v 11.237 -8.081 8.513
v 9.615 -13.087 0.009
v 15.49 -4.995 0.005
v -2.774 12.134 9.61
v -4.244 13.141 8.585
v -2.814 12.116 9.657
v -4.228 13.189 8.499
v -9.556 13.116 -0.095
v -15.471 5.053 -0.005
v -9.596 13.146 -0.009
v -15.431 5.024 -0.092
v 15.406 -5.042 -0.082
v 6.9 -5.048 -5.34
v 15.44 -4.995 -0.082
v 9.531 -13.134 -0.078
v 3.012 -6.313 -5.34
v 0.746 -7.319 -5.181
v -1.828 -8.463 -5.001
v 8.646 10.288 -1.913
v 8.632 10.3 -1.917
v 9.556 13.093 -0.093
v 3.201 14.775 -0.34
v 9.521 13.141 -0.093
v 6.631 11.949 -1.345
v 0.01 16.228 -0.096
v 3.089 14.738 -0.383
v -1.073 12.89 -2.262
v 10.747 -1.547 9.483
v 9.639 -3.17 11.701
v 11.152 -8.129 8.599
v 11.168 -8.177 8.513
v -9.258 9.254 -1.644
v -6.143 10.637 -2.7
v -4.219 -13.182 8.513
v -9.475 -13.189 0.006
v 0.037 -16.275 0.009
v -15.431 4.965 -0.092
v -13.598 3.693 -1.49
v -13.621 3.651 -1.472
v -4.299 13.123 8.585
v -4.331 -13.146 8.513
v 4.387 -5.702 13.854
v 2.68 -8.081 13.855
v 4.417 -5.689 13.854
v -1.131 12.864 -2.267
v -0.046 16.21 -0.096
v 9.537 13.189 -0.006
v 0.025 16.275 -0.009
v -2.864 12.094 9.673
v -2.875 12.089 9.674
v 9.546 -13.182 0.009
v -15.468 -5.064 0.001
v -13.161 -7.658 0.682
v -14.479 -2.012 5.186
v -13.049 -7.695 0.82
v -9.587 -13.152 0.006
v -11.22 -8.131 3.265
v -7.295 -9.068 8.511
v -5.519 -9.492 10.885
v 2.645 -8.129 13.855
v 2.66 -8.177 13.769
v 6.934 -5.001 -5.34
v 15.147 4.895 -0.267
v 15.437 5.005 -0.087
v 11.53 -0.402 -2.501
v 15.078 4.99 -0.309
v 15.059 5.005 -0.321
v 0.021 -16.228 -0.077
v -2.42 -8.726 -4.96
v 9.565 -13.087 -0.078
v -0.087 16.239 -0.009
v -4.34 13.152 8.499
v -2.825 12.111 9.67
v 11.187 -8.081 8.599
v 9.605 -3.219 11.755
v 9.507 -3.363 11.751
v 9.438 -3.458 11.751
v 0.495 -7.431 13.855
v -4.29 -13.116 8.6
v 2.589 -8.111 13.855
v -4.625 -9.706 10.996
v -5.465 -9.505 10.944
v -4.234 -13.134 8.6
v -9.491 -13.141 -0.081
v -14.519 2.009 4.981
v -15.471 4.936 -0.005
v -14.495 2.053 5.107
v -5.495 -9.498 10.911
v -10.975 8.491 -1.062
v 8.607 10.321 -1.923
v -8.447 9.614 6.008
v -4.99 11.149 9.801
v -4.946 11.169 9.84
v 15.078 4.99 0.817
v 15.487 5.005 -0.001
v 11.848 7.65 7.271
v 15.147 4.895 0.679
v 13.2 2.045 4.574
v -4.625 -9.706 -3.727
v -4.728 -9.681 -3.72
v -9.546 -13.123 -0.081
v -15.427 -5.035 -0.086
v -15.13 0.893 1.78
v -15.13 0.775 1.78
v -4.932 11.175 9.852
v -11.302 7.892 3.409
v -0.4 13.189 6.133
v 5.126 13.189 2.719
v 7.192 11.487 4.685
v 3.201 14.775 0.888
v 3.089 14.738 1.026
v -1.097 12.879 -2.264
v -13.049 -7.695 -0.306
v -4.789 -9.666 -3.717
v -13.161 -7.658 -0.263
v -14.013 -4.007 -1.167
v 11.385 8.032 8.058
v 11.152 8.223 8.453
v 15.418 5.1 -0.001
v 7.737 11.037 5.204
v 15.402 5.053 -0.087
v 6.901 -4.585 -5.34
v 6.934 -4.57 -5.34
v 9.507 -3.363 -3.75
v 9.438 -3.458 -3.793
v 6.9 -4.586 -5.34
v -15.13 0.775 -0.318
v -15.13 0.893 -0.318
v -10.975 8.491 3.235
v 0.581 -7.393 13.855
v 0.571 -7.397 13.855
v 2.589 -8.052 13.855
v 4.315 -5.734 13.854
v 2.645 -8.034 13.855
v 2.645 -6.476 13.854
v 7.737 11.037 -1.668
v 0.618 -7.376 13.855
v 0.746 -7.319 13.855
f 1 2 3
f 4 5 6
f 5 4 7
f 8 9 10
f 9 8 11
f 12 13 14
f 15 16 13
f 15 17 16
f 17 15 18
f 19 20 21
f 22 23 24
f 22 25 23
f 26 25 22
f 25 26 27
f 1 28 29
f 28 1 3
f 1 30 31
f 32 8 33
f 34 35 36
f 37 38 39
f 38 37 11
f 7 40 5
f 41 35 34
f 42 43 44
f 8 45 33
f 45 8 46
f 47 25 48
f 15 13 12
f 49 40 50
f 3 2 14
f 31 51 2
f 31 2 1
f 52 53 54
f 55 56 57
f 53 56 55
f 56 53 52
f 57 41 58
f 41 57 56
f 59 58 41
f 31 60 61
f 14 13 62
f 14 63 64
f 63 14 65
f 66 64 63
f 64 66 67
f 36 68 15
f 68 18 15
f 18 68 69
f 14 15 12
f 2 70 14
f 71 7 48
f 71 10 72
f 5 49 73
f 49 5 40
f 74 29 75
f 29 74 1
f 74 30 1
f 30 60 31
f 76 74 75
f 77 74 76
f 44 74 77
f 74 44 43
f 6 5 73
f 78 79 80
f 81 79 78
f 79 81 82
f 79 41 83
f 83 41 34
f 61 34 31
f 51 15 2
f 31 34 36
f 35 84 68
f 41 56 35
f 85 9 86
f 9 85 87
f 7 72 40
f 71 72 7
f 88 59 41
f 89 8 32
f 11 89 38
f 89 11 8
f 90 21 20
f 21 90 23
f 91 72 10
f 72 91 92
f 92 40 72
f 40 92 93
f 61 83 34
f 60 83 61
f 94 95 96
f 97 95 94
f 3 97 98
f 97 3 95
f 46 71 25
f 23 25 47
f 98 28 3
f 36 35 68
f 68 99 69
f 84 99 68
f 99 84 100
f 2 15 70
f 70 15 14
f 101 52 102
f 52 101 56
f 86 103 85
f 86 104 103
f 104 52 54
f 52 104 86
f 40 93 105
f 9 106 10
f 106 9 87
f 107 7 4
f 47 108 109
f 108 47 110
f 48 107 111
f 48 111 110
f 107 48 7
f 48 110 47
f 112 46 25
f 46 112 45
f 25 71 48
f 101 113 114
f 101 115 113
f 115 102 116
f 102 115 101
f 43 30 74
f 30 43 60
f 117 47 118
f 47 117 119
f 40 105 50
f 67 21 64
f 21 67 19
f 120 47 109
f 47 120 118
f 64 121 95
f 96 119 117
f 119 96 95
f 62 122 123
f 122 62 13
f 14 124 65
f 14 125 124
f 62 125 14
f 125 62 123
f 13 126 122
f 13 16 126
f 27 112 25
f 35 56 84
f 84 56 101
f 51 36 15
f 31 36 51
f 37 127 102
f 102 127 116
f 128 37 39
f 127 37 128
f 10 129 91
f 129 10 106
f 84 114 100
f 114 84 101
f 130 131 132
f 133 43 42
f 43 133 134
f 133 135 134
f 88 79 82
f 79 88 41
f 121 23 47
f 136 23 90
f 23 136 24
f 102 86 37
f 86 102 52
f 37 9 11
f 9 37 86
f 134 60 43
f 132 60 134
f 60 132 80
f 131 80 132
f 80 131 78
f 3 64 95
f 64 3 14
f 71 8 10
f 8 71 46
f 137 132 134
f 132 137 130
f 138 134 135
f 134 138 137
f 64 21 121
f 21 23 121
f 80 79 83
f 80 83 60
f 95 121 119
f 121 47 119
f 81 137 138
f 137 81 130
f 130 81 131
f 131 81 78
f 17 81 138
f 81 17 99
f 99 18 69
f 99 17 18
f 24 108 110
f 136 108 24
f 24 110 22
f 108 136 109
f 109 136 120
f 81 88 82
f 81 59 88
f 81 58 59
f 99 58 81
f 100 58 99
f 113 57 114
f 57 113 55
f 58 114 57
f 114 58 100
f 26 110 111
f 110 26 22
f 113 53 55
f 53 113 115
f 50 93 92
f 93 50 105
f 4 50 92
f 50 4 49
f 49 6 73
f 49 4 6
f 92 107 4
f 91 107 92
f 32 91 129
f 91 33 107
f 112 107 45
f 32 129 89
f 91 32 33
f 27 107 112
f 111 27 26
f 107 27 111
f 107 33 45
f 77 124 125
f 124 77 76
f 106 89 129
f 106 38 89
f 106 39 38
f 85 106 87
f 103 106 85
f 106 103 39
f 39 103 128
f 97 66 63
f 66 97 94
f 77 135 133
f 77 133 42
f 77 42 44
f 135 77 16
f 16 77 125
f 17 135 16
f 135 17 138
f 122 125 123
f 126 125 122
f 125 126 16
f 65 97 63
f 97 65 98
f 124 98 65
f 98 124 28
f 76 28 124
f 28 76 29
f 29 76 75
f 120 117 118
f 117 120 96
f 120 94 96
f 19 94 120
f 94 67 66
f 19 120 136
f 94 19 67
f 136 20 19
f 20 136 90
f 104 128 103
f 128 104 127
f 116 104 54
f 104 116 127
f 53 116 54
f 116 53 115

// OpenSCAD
// Auto-generated OpenSCAD file

    inner_points = 10*[[1.504661527029664, 0.48947506274315233, -0.4999999999999145], [-1.3079948667278423, -0.7599647980164363, 0.4999999999999145], [-0.6357029077328671, 0.46948589779540517, -1.3090169943752812], [-0.22020362671136517, 1.2293282153003366, 0.8090169943744602], [0.7706252891456874, 1.09420582817551, -0.8090169943751957], [-1.5048615327414891, 0.08338774737153498, -3.865796571744795e-13], [0.9674919551595329, 0.2508532827872281, -1.3090169943748946], [-1.3079948667276438, -0.759964798016747, -0.5000000000000855], [1.5046615270294654, 0.489475062743463, 0.5000000000000855], [-0.7708252948577115, -0.5213430180605121, 1.3090169943748946], [-0.2202036267110432, 1.2293282152998337, -0.8090169943754346], [-1.0893622517194665, 0.8432300648756529, -0.5000000000005401], [0.09833333015123245, -0.13524486763714477, -1.618033988749895], [-0.7708252948571909, -0.5213430180613257, -1.3090169943750003], [0.9674919551590123, 0.2508532827880416, 1.3090169943750003], [0.098333330150589, -0.13524486763613924, 1.618033988749895], [0.3169659451590877, 1.467949995255758, -4.5458081743277035e-13], [-1.0893622517196655, 0.8432300648759636, 0.4999999999994599], [0.7706252891453657, 1.094205828176013, 0.8090169943746992], [-0.6357029077333877, 0.46948589779621863, 1.3090169943746135], [0.07153360287893762, -0.7224188430740421, -0.8090169943747703], [0.9406922278870392, -0.3363206926493587, 0.5000000000002299], [0.07153360287861593, -0.7224188430735395, 0.8090169943751245], [0.940692227887238, -0.3363206926496693, -0.4999999999997701], [-0.46563596899151527, -0.9610406230294636, 1.444677710793485e-13]];

    outer_points = 10*[[-0.000564910313048521, 1.6180336318009756, -0.0009143233444000093], [0.000564910313048521, -1.6180336318009756, 0.0009143233444000093], [-1.376498108047588, 0.0, 0.8504627841894703], [0.8504625965717973, 0.0010747608291631194, 1.3764978043830696], [-0.4258986806464176, 1.3093488249583056, 0.8498529032449322], [-0.42498463655930974, -1.3086845862361058, 0.8513323094928791], [-0.9515134714882783, 1.3086845862361058, -0.0008695253034087247], [-0.9505994274011704, -1.3093488249583056, 0.0006098809445380104], [0.9505994274011704, 1.3093488249583056, -0.0006098809445380104], [0.9515134714882783, -1.3086845862361058, 0.0008695253034087247], [-0.6885536307365924, 0.5005372701112993, 1.3760052062324764], [-0.688204496962533, -0.49946250928213626, 1.376570289136023], [-1.5390162273083896, 0.49946250928213626, -0.0004925981505932153], [-1.5386670935343303, -0.5005372701112993, 7.248475295340562e-05], [1.5386670935343303, 0.5005372701112993, -7.248475295340562e-05], [1.5390162273083896, -0.49946250928213626, 0.0004925981505932153], [0.2623949304386375, 0.8098863156761693, 1.375960408191485], [0.2629598407516861, -0.8081473161248063, 1.3768747315358851], [1.113117546661972, 0.8098863156761693, 0.8503455013955257], [1.1136824569750208, -0.8081473161248063, 0.8512598247399259], [-0.850578880895062, -0.0005941131744505647, -0.525847139770523], [0.6880882126392683, 0.4999431569368488, -0.5259196245234764], [0.6884373464133277, -0.5000566224565869, -0.5253545416199297], [-0.26307612507495054, 0.8086279637795188, -0.5262240669233383], [-0.26251121476190203, -0.8094056680214567, -0.5253097435789383]];

    // Convex hull for inner set (I)
    module inner_hull() {
        hull() {
            for (p = inner_points) {
                translate(p) sphere(r=0.1);
            }
        }
    }

    // Convex hull for outer set (O) minus inner hull (O \ I)
    module outer_minus_inner() {
        difference() {
            hull() {
                for (p = outer_points) {
                    translate(p) sphere(r=0.1);
                }
            }
            inner_hull(); // Subtract inner hull
        }
    }

    // Convex hull for outer set (O) minus all translated inner hulls
    module outer_minus_AllTranslationInner() {
        difference() {
            hull() {
                for (p = outer_points) {
                    translate(p) sphere(r=0.1);
                }
            }
            hull() {
                translate([0,0,50]) inner_hull();
                translate([0,0,-50]) inner_hull();
            }; // Subtract translated inner hulls
        }
    }

    // Difference between outer_minus_inner and outer_minus_AllTranslationInner
    module outer_minus_inner_diff() {
        difference() {
            // Outer minus inner
            difference() {
                hull() {
                    for (p = outer_points) {
                        translate(p) sphere(r=0.1);
                    }
                }
                inner_hull();
            }

            // Subtract Outer minus AllTranslationInner
            difference() {
                hull() {
                    for (p = outer_points) {
                        translate(p) sphere(r=0.1);
                    }
                }
                hull() {
                    translate([0,0,50]) inner_hull();
                    translate([0,0,-50]) inner_hull();
                };
            }
        }
    }

    // Rendering all with colors applied
    color([0, 1, 0, 1]) outer_minus_AllTranslationInner(); // Opaque green
    
